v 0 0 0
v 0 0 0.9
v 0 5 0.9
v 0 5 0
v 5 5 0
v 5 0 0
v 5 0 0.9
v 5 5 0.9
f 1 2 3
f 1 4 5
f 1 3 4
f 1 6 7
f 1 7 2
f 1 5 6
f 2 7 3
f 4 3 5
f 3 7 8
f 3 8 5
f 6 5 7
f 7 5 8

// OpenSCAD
/* Warning, this is a very basic generator with a lot of approximation 
input data : [QFN, 2EX, 5x5x0.9mm, 28, , A, C04-00239A]
generated by com.zoubworld.electronics.cad.model3d.Basic
Date : Sun Feb 15 10:50:48 CET 2026
*/

//body
color("black")
translate([0,0,0])
cube([5.0,5.0,0.9], center=false);
